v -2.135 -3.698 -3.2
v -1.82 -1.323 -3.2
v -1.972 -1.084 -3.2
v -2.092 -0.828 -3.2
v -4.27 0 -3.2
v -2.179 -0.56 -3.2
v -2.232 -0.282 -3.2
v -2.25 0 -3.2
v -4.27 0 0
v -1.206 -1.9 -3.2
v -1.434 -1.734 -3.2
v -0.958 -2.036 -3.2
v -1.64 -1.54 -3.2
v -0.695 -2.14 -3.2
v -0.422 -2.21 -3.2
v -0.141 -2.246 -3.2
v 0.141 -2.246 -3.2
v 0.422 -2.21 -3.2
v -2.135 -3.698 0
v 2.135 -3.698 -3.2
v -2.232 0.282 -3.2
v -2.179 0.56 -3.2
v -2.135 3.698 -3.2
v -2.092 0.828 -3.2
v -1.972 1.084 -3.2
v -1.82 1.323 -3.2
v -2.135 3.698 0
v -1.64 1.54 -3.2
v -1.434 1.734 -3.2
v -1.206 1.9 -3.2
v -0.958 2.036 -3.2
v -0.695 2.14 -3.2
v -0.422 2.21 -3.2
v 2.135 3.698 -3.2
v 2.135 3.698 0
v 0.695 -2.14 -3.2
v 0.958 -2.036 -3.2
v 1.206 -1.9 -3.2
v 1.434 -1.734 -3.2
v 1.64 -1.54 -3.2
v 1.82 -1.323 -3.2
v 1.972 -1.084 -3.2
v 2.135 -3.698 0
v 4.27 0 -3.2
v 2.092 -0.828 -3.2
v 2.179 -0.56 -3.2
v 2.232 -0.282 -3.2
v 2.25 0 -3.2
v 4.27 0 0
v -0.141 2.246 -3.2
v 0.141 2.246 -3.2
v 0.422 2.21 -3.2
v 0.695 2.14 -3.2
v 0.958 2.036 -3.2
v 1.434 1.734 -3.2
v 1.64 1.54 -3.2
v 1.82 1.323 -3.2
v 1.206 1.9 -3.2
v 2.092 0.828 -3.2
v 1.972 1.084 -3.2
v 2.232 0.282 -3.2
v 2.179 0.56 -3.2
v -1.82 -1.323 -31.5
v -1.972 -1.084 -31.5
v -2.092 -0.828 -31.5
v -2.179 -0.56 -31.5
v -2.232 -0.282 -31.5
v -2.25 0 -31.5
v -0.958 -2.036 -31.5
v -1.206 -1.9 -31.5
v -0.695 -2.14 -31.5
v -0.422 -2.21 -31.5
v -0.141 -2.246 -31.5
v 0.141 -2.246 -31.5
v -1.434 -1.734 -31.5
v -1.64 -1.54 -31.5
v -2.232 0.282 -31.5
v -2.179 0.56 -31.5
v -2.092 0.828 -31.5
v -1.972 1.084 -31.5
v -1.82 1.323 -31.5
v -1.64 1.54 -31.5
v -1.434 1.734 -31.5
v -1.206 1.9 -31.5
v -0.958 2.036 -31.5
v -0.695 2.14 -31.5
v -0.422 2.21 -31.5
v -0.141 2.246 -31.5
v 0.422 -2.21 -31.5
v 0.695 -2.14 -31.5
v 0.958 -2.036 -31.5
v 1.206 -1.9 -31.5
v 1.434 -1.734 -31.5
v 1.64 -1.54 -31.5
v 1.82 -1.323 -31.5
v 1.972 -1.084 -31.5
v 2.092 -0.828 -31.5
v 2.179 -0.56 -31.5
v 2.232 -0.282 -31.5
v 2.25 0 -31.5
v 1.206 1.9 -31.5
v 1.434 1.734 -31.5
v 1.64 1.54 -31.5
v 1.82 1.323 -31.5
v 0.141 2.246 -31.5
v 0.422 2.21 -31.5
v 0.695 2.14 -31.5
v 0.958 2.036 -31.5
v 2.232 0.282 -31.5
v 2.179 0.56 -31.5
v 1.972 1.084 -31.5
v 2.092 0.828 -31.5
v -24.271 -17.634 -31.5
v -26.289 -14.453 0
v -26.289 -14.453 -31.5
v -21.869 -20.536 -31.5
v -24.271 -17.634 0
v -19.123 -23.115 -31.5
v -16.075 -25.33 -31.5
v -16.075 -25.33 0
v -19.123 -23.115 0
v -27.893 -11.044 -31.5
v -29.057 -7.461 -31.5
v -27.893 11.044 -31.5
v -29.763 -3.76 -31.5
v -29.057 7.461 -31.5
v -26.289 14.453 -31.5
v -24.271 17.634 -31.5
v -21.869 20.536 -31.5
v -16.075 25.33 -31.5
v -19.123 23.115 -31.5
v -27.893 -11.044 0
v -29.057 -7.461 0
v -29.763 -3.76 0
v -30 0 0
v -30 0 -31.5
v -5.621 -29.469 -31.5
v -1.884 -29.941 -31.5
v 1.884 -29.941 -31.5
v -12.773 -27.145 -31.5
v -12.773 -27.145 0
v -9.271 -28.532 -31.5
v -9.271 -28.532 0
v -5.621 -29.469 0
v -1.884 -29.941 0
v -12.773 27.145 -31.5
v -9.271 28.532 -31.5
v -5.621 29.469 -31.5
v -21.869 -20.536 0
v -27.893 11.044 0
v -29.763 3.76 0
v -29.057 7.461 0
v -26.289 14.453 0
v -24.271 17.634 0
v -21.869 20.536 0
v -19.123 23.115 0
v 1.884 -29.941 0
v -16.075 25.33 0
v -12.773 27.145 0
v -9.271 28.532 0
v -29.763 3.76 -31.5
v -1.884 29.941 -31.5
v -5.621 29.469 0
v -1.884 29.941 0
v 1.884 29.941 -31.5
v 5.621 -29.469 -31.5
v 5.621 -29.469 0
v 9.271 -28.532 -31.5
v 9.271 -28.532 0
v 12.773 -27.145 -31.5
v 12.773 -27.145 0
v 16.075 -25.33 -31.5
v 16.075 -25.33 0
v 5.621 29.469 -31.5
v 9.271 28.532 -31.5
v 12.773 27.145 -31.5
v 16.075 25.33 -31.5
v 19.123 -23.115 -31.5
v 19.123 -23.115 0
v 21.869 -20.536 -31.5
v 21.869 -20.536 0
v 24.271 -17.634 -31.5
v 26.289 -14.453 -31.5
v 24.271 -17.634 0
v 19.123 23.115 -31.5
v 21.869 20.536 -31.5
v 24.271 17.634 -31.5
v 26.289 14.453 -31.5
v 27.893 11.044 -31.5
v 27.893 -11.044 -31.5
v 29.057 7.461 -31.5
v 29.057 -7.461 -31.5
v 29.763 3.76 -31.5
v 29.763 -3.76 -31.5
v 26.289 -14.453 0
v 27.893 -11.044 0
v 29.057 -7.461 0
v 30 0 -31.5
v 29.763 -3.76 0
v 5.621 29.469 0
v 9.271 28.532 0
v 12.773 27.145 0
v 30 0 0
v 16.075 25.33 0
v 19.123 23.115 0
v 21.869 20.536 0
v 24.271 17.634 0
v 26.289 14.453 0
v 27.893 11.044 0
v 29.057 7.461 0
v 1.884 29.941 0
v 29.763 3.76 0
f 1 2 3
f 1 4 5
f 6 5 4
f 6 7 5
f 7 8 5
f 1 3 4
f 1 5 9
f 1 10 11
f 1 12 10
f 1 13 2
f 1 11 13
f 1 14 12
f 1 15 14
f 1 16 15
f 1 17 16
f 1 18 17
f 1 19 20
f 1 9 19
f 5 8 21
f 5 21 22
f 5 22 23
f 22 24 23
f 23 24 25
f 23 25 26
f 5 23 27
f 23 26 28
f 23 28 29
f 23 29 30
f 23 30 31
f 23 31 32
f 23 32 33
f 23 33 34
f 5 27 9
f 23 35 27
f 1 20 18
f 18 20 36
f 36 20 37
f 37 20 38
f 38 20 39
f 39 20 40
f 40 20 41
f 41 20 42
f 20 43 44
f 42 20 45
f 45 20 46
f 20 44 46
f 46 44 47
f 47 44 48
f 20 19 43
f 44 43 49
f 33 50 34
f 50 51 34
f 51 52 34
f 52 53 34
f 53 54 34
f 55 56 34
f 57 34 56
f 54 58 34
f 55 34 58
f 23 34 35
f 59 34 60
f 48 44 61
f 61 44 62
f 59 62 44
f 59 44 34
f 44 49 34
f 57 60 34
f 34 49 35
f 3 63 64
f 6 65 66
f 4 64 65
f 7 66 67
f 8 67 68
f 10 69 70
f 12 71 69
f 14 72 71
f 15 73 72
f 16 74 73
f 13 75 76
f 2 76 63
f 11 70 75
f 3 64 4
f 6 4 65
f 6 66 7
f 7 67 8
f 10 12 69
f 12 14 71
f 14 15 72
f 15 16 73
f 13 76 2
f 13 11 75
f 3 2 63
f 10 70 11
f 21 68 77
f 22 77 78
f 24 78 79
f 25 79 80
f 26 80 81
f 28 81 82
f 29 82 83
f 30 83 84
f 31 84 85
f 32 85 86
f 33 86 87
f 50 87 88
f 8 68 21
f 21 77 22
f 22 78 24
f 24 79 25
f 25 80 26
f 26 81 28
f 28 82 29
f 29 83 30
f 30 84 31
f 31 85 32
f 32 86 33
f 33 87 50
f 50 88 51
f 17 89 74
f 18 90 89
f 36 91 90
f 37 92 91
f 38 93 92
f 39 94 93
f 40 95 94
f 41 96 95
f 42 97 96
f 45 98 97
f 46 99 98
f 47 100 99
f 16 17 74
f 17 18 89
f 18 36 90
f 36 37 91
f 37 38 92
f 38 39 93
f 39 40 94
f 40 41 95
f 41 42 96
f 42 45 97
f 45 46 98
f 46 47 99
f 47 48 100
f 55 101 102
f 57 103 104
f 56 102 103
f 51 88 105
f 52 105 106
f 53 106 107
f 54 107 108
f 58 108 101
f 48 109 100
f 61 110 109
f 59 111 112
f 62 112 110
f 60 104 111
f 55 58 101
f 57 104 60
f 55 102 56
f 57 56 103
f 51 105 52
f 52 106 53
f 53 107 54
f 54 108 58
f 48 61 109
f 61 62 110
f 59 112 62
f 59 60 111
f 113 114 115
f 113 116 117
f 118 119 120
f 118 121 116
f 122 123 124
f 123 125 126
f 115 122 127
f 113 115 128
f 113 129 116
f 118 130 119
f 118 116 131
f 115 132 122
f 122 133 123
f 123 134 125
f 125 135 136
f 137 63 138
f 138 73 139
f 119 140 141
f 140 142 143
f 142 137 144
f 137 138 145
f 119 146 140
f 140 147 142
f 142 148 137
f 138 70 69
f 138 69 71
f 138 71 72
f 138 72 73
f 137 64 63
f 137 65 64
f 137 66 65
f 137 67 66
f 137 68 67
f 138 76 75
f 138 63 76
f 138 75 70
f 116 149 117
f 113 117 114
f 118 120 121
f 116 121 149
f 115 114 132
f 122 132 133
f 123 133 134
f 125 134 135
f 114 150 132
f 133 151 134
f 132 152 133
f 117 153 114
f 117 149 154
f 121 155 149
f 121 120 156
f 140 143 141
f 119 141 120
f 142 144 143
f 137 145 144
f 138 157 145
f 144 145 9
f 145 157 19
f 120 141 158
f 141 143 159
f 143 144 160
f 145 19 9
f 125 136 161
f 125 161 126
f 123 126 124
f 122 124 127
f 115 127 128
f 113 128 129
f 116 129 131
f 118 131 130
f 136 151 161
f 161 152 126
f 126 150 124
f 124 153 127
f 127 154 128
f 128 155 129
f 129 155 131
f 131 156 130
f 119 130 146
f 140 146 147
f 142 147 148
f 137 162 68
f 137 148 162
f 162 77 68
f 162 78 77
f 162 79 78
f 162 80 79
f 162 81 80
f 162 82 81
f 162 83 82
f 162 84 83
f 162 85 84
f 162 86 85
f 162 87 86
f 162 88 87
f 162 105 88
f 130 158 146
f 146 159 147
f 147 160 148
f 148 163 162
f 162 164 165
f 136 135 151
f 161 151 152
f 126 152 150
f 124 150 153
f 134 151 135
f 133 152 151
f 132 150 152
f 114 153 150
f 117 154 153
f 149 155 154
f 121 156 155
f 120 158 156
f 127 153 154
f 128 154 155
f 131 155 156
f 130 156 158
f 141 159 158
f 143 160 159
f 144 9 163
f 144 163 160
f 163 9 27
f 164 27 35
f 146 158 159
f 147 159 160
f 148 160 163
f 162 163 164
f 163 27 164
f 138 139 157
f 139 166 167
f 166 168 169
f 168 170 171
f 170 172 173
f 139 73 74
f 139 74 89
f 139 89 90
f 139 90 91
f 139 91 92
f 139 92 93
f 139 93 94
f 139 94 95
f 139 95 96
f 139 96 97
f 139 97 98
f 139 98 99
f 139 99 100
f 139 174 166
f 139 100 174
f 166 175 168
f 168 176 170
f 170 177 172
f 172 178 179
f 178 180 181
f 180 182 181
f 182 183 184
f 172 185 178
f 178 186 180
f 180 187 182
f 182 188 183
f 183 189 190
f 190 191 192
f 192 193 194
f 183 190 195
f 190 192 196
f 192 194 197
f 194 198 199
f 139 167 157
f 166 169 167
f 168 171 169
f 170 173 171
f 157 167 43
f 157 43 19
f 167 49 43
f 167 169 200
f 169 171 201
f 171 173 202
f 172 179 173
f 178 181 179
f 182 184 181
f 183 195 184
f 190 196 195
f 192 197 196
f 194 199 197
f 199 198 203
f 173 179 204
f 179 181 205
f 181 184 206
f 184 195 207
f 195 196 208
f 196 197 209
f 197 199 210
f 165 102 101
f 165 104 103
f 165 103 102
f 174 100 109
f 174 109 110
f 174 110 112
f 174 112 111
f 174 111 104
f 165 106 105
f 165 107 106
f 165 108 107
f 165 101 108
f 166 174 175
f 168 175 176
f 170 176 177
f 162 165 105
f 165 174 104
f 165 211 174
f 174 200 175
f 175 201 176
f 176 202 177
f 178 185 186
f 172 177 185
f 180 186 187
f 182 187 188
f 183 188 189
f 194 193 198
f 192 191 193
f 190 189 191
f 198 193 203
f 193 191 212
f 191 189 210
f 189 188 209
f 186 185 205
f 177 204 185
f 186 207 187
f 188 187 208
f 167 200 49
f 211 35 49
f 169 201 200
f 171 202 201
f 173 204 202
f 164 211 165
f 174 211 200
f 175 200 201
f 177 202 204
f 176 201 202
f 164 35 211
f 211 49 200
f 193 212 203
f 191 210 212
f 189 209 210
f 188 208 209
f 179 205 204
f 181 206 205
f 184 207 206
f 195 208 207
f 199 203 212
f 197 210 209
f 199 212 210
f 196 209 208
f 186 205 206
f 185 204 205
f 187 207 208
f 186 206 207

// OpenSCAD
$fn = 50;


difference() {
	union() {
		translate(v = [0, 0, -31.5000000000]) {
			cylinder(h = 31.5000000000, r = 30.0000000000);
		}
	}
	union() {
		translate(v = [0, 0, 0]) {
			rotate(a = [0, 0, 0]) {
				difference() {
					union() {
						translate(v = [0, 0, -3.2000000000]) {
							linear_extrude(height = 3.2000000000) {
								polygon(points = [[4.2698000000, 0.0000000000], [2.1349000000, 3.6977552691], [-2.1349000000, 3.6977552691], [-4.2698000000, 0.0000000000], [-2.1349000000, -3.6977552691], [2.1349000000, -3.6977552691]]);
							}
						}
					}
					union();
				}
			}
		}
		#translate(v = [0, 0, -100.0000000000]) {
			cylinder(h = 200, r = 2.2500000000);
		}
	}
}
